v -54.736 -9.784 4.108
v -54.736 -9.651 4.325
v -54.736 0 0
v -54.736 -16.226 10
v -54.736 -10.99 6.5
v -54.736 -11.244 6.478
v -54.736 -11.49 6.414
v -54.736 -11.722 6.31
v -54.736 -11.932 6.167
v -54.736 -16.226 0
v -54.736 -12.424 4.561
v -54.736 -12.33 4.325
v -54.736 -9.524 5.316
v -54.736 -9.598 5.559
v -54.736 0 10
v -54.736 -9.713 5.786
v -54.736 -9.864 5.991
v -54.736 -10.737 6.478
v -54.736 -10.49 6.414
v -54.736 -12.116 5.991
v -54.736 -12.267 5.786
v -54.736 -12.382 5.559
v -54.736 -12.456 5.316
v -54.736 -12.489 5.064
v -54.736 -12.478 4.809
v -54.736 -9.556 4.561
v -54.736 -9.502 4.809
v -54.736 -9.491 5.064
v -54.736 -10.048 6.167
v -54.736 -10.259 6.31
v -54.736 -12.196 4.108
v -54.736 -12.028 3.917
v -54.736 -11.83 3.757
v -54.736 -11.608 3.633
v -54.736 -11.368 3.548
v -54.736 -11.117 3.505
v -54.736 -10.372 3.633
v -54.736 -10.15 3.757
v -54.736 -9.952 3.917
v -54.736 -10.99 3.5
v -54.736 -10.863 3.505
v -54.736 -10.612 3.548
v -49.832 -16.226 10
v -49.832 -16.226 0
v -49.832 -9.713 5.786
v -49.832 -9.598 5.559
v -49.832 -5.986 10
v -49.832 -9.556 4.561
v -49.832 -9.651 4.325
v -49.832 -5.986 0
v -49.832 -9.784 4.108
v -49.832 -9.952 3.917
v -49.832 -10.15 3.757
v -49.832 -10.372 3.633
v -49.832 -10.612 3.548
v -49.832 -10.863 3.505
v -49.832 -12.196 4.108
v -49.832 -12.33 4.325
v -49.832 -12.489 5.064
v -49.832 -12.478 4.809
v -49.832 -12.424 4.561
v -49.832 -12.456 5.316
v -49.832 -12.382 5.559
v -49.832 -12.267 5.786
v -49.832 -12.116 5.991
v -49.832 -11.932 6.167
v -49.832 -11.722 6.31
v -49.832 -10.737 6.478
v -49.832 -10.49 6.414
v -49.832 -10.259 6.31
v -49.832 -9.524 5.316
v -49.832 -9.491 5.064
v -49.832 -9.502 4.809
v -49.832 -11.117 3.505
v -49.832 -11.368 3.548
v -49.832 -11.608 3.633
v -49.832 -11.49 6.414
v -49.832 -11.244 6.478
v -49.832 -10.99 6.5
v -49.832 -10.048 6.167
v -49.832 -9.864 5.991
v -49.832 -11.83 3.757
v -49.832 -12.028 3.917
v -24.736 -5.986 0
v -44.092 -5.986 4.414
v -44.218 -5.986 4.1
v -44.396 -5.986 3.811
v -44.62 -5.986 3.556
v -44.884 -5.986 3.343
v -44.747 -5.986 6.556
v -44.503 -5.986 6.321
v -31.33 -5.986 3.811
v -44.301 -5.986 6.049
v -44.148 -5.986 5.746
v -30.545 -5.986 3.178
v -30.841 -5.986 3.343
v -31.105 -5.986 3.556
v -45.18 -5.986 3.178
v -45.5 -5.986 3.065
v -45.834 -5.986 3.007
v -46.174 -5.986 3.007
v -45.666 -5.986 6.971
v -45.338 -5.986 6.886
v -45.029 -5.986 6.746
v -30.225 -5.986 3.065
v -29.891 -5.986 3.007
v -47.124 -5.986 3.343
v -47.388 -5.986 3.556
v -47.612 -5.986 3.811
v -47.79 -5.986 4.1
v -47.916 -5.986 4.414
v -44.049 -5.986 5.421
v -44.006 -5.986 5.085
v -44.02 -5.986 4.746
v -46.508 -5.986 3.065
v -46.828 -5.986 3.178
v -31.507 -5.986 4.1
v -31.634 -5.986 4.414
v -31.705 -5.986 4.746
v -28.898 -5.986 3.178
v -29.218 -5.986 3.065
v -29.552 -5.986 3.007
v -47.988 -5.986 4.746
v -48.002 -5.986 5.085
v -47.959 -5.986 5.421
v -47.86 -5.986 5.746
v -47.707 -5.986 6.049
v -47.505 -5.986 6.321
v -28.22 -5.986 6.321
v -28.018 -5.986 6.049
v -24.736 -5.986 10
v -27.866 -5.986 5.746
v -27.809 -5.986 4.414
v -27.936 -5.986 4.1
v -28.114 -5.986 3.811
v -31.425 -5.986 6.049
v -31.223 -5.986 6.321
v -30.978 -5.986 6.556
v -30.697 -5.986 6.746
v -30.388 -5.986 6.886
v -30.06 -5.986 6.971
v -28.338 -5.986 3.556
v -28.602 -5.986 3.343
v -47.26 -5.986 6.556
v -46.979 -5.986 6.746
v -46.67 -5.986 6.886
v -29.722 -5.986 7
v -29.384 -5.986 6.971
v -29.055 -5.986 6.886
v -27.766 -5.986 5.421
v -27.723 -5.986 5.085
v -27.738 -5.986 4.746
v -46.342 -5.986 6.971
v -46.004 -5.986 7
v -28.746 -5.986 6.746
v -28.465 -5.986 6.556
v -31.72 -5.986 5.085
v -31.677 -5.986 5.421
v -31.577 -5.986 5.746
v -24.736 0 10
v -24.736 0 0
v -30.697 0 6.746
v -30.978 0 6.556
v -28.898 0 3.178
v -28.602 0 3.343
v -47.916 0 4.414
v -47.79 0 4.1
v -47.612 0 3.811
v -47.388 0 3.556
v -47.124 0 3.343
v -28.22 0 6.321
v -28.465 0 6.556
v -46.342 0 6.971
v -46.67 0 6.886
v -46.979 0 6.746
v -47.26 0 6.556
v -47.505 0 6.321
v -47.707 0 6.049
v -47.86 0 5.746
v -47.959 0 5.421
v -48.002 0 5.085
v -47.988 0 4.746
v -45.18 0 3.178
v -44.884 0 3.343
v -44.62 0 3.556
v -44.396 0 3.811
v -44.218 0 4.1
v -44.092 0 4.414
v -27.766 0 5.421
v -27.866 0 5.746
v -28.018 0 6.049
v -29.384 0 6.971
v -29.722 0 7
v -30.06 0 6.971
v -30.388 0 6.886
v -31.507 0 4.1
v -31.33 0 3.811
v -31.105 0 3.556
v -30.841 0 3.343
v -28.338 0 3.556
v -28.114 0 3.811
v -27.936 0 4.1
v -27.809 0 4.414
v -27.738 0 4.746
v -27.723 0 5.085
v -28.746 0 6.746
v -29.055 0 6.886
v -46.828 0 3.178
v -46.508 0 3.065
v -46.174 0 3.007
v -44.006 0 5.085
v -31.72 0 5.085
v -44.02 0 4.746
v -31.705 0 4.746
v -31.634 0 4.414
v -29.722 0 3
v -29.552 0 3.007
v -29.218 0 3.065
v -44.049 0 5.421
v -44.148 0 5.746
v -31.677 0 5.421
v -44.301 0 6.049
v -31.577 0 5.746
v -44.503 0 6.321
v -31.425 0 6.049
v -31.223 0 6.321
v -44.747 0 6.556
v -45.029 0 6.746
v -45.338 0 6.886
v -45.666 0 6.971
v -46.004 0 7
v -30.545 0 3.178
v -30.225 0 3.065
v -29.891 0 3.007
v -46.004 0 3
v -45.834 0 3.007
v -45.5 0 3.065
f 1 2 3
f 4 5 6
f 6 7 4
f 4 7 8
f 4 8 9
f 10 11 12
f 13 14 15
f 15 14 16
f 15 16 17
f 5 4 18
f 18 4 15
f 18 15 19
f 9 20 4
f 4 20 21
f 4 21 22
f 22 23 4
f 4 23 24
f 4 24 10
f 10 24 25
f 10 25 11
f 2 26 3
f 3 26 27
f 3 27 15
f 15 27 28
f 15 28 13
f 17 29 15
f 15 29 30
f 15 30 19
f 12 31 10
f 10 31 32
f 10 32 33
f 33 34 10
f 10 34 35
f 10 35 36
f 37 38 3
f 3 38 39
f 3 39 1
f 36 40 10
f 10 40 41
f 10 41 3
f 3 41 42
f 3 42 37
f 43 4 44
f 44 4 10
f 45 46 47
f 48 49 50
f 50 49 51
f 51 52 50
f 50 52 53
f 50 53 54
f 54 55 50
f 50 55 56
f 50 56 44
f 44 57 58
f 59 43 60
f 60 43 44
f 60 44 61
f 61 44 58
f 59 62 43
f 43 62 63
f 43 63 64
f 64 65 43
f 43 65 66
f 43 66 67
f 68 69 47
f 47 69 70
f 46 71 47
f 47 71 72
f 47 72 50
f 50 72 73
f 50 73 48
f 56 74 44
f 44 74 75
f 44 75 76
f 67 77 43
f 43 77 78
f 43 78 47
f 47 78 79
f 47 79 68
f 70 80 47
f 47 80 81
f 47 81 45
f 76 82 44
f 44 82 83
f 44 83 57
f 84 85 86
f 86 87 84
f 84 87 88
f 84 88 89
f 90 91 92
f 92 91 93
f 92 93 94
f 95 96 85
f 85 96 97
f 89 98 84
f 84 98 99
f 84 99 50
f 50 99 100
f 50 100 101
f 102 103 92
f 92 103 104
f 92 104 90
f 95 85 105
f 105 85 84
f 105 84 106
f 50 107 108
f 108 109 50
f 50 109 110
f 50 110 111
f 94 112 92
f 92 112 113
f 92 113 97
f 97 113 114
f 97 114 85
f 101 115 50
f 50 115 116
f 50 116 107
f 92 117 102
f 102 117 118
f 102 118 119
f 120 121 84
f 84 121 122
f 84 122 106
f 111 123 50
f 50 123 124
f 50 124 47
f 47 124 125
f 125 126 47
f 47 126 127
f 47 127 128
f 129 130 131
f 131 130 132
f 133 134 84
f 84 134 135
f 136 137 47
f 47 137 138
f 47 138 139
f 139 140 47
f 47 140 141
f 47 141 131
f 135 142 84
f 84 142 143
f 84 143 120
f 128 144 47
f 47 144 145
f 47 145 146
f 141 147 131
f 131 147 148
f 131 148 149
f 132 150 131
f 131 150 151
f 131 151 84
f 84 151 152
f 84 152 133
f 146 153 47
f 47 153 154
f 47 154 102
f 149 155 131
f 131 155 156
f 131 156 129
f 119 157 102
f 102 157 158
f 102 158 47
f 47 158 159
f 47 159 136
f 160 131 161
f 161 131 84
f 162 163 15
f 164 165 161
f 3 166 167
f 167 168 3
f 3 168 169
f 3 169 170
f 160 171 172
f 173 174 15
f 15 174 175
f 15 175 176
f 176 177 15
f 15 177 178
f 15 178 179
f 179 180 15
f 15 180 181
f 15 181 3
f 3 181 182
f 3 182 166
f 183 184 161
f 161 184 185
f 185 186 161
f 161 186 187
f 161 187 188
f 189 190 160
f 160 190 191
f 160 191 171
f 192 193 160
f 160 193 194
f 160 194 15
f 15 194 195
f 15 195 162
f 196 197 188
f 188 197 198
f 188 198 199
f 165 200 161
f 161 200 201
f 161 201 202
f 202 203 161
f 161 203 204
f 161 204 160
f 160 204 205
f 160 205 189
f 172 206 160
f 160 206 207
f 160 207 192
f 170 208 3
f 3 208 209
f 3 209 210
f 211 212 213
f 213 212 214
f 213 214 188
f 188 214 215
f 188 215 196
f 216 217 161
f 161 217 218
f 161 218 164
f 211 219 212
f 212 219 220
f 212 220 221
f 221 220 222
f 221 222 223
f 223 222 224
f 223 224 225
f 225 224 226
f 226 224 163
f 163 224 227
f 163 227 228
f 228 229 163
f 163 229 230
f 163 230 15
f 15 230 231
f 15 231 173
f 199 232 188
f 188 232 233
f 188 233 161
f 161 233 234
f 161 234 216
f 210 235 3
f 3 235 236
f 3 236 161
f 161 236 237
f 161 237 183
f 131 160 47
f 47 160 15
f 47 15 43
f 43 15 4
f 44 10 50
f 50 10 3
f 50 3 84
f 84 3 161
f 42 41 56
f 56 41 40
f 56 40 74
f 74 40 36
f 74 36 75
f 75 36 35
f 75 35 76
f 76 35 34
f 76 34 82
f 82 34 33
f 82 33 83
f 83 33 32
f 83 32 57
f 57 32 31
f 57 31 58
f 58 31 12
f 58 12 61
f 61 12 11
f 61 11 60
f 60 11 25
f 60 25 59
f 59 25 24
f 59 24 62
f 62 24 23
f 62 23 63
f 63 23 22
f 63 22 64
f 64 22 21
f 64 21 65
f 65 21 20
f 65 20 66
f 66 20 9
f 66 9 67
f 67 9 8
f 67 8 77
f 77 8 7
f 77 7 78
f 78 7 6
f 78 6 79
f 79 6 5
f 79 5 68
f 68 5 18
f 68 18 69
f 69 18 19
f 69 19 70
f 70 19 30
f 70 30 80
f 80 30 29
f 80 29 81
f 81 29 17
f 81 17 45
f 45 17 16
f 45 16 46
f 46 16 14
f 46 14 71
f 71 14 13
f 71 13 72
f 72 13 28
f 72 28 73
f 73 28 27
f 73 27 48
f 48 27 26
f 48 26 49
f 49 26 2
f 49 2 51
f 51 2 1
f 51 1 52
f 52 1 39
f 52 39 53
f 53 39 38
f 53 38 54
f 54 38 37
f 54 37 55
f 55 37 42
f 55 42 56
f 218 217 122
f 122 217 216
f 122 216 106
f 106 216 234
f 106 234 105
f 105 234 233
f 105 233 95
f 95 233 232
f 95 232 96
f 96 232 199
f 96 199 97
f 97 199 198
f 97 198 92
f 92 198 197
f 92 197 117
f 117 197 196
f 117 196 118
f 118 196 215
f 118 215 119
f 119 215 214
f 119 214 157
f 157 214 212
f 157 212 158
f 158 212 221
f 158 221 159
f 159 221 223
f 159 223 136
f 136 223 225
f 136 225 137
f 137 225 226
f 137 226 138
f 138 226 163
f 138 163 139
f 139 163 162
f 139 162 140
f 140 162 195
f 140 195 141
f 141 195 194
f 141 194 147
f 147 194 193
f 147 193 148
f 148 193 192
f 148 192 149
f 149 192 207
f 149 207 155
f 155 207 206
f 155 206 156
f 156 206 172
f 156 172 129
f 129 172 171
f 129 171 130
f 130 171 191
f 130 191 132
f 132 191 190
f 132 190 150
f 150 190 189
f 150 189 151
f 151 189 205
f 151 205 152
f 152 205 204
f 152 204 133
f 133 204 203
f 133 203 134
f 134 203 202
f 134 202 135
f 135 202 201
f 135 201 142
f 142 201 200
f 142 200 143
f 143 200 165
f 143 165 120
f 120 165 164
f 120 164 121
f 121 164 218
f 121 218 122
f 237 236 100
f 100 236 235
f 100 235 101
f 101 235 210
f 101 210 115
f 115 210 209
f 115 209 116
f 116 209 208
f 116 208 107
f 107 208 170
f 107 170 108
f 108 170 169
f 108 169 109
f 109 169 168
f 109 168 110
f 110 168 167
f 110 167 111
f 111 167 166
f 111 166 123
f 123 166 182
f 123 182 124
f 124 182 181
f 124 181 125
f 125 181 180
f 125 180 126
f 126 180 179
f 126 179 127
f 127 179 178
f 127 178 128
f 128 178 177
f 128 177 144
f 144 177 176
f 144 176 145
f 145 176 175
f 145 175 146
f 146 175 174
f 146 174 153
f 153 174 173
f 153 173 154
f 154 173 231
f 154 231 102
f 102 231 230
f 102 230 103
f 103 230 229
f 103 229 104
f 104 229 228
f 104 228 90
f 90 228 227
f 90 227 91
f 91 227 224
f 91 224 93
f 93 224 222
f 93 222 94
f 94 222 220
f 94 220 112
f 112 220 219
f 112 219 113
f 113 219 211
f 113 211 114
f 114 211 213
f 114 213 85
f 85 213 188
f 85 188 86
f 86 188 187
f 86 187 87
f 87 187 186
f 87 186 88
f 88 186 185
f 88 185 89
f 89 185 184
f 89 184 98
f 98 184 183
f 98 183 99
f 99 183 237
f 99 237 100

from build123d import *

# Parameters (mm, degrees)
BOSS_EXTRUDE1_DEPTH     = 10
CUT_EXTRUDE1_DEPTH      = 58.959168463
CUT_EXTRUDE1_DEPTH_BACK = 58.959168463
SKETCH7_R               = 0.991796169
CUT_EXTRUDE2_DEPTH      = 58.959168463
CUT_EXTRUDE2_DEPTH_BACK = 58.959168463
CUT_EXTRUDE3_DEPTH      = 36.542676149
CUT_EXTRUDE3_DEPTH_BACK = 36.542676149
SKETCH9_R               = 0.986488891
CUT_EXTRUDE4_DEPTH      = 36.542676149
CUT_EXTRUDE4_DEPTH_BACK = 36.542676149
SKETCH10_R              = 1.5
CUT_EXTRUDE5_DEPTH      = 58.959168463
CUT_EXTRUDE5_DEPTH_BACK = 58.959168463
SKETCH12_R              = 2


with BuildPart() as part:
    # Sketch1 → Boss-Extrude1 (new body)
    with BuildSketch(Plane.XY):
        Polygon((-54.735576923, 0), (-24.735576923, 0), (-24.735576923, -5.985576923), (-49.831730769, -5.985576923), (-49.831730769, -16.225961538), (-54.735576923, -16.225961538), align=None)
    extrude(amount=BOSS_EXTRUDE1_DEPTH)

    # Sketch7 → Cut-Extrude1 (cut, two sides: drawn at the far end of the back side and taken through both)
    with BuildSketch(Plane(origin=(0, 0, 0), x_dir=(1, 0, 0), z_dir=(0, 1, 0)).offset(-CUT_EXTRUDE1_DEPTH_BACK)):
        with Locations(Location((-29.721531387, -5, 0), (0, 0, 270))):
            Circle(SKETCH7_R)
    extrude(amount=CUT_EXTRUDE1_DEPTH + CUT_EXTRUDE1_DEPTH_BACK, mode=Mode.SUBTRACT)

    # Sketch2 → Cut-Extrude2 (cut, two sides: drawn at the far end of the back side and taken through both)
    with BuildSketch(Plane(origin=(0, 0, 0), x_dir=(1, 0, 0), z_dir=(0, 1, 0)).offset(-CUT_EXTRUDE2_DEPTH_BACK)):
        with BuildLine():
            ThreePointArc((-45.014660465, -5), (-46.003925048, -4.010735417), (-46.993189631, -5))
            Line((-46.993189631, -5), (-45.014660465, -5))
        make_face()
        with BuildLine():
            Line((-45.014660465, -5), (-46.993189631, -5))
            ThreePointArc((-46.993189631, -5), (-46.003925048, -5.989264583), (-45.014660465, -5))
        make_face()
    extrude(amount=CUT_EXTRUDE2_DEPTH + CUT_EXTRUDE2_DEPTH_BACK, mode=Mode.SUBTRACT)

    # Sketch9 → Cut-Extrude3 (cut, two sides: drawn at the far end of the back side and taken through both)
    with BuildSketch(Plane.ZY.offset(54.735576923).offset(-CUT_EXTRUDE3_DEPTH_BACK)):
        with Locations((5, -10.990115231)):
            Circle(SKETCH9_R)
    extrude(amount=CUT_EXTRUDE3_DEPTH + CUT_EXTRUDE3_DEPTH_BACK, mode=Mode.SUBTRACT)

    # Sketch10 → Cut-Extrude4 (cut, two sides: drawn at the far end of the back side and taken through both)
    with BuildSketch(Plane.ZY.offset(54.735576923).offset(-CUT_EXTRUDE4_DEPTH_BACK)):
        with Locations((5, -10.990115231)):
            Circle(SKETCH10_R)
    extrude(amount=CUT_EXTRUDE4_DEPTH + CUT_EXTRUDE4_DEPTH_BACK, mode=Mode.SUBTRACT)

    # Sketch12 → Cut-Extrude5 (cut, two sides: drawn at the far end of the back side and taken through both)
    with BuildSketch(Plane(origin=(0, 0, 0), x_dir=(1, 0, 0), z_dir=(0, 1, 0)).offset(-CUT_EXTRUDE5_DEPTH_BACK)):
        with Locations(Location((-46.003925048, -5, 0), (0, 0, 270))):
            Circle(SKETCH12_R)
        with Locations(Location((-29.721531387, -5, 0), (0, 0, 270))):
            Circle(SKETCH12_R)
    extrude(amount=CUT_EXTRUDE5_DEPTH + CUT_EXTRUDE5_DEPTH_BACK, mode=Mode.SUBTRACT)


solid = part.part
